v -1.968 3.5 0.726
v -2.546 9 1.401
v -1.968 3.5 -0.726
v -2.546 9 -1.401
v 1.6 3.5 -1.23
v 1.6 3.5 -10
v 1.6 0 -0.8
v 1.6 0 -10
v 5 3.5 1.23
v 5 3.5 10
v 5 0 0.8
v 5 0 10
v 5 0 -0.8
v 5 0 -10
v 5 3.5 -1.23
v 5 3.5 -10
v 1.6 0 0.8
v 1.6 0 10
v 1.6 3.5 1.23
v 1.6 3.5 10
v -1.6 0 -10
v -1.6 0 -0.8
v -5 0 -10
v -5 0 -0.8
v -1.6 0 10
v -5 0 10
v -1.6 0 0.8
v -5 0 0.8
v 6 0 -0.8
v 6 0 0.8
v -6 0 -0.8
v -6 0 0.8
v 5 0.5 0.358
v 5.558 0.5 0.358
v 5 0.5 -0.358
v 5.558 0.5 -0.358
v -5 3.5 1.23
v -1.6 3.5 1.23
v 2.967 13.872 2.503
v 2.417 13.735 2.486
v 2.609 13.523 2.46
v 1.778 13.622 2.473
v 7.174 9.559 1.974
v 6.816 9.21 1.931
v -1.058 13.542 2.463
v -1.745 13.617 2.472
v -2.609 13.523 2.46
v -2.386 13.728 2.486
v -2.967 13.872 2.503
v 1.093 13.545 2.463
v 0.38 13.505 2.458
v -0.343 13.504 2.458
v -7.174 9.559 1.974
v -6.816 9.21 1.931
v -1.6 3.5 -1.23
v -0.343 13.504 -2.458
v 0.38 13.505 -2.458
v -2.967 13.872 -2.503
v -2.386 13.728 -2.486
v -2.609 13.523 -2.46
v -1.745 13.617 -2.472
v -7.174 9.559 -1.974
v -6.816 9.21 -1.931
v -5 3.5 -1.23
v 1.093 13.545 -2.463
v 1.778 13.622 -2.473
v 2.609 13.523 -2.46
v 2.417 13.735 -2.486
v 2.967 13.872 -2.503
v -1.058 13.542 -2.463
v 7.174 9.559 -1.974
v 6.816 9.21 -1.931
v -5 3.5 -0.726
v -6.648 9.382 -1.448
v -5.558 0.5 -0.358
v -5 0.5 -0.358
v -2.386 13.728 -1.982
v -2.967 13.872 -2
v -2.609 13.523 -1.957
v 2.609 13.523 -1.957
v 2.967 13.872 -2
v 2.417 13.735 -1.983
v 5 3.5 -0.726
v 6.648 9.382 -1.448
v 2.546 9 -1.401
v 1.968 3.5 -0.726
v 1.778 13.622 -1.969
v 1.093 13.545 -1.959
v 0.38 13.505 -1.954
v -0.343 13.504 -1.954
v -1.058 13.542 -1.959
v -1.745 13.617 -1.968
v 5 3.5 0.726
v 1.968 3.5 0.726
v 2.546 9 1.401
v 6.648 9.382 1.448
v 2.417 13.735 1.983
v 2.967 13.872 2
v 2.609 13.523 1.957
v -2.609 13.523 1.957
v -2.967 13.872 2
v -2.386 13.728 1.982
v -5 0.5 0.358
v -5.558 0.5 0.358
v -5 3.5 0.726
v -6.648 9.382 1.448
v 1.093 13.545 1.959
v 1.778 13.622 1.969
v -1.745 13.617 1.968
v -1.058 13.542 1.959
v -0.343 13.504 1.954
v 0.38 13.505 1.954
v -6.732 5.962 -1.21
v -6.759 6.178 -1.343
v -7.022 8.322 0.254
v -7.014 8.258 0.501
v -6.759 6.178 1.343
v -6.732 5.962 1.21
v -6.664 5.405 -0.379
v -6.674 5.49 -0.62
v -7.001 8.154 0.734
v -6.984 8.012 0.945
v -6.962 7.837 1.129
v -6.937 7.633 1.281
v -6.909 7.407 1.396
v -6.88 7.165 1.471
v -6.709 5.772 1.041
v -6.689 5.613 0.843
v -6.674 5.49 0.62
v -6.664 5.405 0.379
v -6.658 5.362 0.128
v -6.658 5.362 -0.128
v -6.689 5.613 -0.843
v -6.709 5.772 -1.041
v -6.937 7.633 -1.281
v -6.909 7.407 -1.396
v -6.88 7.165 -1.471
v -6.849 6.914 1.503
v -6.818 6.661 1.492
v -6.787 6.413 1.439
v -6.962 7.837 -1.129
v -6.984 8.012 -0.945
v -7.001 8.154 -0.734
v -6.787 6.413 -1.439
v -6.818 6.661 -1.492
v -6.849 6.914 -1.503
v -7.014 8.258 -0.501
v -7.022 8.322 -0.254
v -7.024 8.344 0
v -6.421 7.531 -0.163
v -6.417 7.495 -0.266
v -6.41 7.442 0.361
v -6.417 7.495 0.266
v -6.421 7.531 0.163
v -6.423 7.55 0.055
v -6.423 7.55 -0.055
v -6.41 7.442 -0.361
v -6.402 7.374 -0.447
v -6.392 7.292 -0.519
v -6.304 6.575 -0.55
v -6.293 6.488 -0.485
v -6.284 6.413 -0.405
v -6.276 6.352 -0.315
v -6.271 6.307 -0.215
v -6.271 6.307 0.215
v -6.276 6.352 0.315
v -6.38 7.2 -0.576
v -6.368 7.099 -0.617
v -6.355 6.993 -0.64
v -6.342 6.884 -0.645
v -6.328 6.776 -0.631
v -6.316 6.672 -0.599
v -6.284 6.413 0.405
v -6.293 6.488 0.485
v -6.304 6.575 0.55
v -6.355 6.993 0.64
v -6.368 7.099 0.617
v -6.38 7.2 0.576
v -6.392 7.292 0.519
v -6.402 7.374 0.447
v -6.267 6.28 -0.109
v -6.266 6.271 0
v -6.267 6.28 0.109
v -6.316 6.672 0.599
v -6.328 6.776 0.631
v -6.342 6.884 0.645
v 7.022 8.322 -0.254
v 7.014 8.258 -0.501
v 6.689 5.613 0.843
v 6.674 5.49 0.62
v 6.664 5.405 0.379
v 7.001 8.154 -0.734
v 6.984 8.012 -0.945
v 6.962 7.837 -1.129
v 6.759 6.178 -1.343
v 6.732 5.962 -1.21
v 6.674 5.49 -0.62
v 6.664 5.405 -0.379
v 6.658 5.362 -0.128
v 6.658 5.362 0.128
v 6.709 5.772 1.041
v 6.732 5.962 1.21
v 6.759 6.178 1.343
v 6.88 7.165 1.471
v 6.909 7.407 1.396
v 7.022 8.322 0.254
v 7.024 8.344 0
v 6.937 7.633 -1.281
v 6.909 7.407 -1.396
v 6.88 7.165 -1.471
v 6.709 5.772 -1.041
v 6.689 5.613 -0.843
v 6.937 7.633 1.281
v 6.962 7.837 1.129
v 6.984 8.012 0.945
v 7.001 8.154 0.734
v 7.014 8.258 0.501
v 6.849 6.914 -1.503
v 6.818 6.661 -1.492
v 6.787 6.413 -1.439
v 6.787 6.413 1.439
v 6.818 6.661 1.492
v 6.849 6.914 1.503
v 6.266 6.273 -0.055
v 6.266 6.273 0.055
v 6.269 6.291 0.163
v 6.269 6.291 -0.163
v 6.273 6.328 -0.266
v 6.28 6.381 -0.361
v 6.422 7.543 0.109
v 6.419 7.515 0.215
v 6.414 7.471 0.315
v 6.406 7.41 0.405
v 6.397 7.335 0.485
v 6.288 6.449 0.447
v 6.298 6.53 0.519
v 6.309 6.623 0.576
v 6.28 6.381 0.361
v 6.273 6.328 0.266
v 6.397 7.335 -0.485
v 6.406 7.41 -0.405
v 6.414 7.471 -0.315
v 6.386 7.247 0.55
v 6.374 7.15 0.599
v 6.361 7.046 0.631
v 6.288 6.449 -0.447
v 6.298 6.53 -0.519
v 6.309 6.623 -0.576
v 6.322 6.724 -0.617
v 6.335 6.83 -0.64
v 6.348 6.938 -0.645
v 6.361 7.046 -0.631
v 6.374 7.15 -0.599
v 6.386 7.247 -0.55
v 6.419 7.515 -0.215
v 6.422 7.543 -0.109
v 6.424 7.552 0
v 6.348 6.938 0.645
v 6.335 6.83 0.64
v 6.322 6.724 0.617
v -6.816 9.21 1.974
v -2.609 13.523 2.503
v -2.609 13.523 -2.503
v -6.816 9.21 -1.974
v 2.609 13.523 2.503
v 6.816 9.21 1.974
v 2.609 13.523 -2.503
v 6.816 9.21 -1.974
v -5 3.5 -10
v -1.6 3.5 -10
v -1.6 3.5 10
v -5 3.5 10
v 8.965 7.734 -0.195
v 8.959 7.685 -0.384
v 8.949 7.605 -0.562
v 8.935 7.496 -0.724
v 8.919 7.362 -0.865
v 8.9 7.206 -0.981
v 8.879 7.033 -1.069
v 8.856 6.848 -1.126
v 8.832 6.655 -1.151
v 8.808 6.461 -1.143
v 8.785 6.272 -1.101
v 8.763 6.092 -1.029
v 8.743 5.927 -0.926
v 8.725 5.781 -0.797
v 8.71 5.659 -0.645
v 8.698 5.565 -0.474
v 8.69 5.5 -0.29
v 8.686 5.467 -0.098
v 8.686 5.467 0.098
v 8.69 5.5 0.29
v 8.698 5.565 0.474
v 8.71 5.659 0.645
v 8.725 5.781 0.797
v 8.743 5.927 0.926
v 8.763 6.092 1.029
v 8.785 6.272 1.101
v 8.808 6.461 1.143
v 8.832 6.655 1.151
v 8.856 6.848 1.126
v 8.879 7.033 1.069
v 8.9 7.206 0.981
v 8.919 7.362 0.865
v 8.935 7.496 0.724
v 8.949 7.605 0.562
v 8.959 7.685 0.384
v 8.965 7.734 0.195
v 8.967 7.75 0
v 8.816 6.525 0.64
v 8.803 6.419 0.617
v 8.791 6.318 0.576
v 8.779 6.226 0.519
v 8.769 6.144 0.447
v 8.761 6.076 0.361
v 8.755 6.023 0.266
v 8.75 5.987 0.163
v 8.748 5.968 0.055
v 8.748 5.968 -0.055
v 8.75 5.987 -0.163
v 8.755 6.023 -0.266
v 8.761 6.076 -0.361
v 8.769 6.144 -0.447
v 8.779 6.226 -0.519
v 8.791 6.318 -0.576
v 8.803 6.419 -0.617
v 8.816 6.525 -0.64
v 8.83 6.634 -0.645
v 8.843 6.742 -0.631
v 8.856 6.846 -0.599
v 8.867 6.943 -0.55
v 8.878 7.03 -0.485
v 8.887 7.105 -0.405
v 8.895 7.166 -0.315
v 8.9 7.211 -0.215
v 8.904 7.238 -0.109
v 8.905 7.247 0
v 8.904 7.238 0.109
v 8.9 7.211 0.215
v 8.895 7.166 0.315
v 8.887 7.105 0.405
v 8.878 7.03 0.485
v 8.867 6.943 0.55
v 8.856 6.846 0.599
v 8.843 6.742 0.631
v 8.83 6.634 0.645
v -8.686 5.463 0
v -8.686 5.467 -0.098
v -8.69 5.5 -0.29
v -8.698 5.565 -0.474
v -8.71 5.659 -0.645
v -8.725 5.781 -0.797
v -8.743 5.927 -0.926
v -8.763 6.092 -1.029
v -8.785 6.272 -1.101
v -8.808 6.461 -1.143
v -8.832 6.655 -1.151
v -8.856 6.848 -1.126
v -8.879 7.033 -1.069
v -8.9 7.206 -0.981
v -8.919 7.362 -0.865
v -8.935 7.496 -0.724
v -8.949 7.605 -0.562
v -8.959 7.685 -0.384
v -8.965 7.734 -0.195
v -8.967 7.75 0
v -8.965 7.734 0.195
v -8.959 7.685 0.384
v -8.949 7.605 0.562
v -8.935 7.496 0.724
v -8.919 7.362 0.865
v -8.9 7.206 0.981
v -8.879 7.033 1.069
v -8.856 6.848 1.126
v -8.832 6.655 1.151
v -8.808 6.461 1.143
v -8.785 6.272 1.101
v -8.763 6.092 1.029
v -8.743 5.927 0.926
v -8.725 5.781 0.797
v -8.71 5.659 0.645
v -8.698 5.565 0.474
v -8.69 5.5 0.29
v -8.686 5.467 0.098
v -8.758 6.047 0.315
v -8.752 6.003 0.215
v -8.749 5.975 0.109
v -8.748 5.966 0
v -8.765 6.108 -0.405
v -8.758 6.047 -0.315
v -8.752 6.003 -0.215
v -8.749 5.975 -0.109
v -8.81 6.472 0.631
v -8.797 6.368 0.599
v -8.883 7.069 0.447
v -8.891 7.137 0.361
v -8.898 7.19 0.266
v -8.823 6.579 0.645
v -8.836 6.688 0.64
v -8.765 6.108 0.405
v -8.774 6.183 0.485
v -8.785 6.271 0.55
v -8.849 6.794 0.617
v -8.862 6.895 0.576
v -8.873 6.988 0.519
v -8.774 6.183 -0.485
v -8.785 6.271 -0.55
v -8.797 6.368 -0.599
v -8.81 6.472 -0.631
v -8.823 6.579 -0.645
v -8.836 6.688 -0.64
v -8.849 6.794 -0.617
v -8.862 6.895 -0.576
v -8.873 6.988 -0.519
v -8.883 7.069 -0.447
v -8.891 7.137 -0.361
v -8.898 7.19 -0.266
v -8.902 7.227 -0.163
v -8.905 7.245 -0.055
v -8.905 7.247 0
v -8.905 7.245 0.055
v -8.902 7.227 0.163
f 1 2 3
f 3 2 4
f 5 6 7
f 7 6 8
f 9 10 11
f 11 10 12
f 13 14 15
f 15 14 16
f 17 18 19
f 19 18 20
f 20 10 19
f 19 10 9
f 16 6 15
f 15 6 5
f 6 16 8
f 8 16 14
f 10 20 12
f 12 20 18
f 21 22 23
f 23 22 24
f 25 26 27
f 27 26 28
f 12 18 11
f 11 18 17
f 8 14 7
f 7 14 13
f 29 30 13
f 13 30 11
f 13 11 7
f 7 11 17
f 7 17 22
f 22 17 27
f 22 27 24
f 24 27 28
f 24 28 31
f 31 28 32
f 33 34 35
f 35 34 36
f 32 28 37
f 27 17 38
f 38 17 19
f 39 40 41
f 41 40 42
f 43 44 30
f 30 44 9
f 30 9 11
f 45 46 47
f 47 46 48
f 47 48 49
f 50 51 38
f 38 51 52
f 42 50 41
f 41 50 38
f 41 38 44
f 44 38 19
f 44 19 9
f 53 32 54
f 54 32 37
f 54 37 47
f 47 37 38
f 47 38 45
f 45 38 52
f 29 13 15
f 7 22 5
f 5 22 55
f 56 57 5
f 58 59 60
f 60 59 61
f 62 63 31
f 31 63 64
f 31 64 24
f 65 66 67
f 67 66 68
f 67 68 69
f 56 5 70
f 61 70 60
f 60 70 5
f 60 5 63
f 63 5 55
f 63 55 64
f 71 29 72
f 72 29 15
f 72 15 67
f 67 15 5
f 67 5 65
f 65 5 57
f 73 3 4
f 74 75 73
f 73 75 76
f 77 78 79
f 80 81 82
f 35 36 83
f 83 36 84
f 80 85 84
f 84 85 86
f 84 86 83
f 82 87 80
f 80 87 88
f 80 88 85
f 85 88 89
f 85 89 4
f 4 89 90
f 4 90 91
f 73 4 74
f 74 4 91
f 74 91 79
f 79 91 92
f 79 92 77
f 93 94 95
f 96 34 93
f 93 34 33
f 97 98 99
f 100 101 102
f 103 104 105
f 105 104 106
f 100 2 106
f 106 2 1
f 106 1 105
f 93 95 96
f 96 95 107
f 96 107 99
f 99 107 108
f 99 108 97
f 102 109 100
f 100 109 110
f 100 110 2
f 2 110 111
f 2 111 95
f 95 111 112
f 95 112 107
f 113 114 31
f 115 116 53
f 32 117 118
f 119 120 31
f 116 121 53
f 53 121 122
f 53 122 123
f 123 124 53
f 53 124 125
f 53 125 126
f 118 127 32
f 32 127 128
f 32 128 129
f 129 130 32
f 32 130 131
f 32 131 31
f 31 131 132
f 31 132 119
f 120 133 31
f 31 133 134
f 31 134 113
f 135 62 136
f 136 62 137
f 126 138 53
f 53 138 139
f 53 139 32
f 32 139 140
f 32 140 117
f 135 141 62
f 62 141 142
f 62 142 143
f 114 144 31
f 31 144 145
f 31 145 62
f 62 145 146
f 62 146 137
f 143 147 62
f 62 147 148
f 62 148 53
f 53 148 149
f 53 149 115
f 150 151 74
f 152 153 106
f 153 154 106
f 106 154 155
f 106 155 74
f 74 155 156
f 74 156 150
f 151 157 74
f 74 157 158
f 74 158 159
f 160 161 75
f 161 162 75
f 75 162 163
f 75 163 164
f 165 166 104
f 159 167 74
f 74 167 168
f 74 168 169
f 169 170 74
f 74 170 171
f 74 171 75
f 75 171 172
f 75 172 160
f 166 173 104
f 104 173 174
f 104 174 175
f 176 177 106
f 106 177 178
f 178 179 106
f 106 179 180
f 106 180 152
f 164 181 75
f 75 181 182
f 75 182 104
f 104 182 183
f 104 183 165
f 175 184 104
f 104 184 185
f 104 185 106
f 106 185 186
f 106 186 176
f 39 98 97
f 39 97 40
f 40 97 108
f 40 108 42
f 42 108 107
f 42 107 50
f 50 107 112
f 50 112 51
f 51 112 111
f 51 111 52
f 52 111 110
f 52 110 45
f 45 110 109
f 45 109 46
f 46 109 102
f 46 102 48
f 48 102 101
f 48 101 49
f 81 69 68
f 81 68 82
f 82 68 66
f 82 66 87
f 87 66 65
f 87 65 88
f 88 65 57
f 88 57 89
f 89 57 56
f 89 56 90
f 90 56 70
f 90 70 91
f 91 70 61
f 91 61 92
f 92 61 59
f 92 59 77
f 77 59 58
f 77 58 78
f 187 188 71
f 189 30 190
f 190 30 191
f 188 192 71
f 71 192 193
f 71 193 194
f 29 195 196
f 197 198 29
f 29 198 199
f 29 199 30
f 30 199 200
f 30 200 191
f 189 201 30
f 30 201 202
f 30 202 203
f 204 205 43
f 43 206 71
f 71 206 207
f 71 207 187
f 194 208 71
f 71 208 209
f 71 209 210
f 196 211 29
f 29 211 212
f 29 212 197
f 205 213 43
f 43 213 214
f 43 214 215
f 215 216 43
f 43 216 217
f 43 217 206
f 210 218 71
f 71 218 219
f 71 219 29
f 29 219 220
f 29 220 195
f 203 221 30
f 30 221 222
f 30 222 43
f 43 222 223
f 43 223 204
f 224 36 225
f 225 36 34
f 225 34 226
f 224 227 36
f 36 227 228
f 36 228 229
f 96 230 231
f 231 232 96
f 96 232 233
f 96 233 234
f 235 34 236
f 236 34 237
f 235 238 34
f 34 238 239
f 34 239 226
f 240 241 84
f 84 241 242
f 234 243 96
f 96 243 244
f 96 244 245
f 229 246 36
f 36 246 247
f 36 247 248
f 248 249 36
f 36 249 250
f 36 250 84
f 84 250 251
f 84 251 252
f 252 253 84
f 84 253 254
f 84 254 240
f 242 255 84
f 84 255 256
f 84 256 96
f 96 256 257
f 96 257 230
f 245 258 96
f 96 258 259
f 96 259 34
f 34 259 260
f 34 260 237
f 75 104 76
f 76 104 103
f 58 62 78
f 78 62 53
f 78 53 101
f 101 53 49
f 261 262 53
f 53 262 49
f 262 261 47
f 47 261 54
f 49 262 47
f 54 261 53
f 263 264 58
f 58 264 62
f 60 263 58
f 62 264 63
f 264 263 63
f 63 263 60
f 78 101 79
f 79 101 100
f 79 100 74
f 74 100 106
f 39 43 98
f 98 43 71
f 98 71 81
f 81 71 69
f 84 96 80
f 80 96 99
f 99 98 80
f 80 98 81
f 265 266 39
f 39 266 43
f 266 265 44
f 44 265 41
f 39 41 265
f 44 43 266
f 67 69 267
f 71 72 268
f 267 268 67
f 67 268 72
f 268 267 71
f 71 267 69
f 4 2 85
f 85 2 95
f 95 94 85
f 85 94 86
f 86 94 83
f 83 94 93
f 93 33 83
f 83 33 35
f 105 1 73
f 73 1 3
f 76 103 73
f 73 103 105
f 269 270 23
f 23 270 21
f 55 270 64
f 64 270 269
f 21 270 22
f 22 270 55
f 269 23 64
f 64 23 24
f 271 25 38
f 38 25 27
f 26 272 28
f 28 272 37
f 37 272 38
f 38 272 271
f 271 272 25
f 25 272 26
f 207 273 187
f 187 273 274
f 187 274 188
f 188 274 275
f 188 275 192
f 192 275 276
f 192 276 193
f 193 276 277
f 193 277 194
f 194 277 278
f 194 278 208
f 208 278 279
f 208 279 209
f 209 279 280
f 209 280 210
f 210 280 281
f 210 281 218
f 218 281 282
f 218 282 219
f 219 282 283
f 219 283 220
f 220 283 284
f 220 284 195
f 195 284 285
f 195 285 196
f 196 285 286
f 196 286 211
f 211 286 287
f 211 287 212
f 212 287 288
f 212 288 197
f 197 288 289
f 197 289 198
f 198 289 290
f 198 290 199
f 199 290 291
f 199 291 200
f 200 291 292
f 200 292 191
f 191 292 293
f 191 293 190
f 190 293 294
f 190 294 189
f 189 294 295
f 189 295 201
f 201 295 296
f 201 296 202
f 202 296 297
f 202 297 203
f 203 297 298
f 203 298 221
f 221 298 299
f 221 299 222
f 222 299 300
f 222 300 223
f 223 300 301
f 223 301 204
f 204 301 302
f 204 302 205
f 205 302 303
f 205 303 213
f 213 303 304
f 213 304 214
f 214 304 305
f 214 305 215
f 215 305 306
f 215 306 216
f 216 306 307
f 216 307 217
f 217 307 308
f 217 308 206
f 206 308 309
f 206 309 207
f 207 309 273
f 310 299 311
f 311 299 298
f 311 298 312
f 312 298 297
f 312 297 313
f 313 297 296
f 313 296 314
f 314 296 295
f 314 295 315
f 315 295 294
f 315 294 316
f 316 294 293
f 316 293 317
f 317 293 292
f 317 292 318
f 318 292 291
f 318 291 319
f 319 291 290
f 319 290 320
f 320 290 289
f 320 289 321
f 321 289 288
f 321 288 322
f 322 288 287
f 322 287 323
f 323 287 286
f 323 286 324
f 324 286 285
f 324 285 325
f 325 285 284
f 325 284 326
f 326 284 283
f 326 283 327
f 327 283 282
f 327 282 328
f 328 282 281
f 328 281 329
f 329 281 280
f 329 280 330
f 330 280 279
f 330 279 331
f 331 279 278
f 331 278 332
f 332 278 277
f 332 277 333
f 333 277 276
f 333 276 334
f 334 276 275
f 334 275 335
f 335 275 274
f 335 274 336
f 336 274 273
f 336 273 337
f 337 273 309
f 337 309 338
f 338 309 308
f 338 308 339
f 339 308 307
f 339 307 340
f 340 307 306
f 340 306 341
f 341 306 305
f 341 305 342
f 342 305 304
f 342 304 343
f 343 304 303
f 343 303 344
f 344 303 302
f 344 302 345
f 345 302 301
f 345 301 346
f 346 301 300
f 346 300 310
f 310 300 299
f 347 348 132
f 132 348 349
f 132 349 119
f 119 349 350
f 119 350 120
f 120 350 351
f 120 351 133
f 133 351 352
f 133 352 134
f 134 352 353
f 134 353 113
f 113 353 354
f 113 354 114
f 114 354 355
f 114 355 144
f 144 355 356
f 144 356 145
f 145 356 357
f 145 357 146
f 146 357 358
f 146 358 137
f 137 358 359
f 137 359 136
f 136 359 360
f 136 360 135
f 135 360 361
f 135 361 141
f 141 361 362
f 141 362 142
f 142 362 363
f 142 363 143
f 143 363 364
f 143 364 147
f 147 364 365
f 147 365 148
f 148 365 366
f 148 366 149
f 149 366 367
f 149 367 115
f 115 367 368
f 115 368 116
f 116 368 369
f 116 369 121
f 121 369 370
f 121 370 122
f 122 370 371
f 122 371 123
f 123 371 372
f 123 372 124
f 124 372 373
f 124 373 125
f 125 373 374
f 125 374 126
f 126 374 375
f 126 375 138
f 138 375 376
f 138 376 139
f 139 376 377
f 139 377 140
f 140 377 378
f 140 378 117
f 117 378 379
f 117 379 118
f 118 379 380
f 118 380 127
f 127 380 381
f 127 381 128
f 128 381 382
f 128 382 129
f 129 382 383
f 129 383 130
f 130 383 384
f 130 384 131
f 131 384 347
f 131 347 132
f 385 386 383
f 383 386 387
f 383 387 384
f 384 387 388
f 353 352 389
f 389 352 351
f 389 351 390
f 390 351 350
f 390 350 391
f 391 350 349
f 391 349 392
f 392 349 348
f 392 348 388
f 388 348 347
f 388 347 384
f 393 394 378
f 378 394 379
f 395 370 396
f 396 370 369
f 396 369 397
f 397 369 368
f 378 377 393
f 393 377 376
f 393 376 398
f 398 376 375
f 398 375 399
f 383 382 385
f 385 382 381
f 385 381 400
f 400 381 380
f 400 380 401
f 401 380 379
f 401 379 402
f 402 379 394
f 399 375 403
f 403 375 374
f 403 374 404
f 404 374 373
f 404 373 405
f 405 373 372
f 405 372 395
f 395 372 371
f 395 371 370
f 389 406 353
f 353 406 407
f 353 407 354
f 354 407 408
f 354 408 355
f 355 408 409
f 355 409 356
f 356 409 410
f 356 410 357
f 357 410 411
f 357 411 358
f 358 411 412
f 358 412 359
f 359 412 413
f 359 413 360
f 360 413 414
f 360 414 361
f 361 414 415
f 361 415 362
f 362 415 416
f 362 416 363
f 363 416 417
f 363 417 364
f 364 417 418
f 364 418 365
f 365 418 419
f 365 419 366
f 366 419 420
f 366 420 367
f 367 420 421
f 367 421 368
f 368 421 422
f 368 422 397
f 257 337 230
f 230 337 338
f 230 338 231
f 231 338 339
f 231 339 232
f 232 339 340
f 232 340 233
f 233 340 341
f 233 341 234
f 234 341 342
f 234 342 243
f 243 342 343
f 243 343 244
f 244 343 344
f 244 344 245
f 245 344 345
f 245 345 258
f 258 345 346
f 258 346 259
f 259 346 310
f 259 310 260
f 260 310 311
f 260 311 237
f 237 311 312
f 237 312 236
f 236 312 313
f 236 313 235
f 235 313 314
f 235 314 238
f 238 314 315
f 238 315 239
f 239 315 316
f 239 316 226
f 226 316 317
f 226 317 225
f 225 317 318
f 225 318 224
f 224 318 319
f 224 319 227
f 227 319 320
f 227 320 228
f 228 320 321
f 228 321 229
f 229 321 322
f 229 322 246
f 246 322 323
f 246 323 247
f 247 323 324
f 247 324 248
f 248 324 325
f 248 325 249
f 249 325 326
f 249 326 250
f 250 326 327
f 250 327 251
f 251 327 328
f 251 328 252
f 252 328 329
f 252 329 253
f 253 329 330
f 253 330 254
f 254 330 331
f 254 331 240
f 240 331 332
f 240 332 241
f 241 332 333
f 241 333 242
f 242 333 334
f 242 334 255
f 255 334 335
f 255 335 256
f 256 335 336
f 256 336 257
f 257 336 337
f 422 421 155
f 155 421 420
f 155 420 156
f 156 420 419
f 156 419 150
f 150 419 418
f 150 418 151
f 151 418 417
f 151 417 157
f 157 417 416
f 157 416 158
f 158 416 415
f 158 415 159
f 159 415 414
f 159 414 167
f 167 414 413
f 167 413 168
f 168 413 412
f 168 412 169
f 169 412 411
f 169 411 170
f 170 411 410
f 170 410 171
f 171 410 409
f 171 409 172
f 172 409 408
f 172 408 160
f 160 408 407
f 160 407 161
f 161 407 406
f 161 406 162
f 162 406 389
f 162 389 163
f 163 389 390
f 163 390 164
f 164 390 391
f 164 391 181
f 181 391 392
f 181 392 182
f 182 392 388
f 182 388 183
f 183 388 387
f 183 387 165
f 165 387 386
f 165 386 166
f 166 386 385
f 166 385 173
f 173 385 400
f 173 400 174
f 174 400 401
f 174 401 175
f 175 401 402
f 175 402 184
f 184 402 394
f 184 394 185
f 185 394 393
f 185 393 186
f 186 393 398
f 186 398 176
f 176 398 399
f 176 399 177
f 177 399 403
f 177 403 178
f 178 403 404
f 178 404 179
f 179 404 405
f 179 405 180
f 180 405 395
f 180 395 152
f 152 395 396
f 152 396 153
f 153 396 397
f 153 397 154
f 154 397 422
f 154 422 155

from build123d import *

# Parameters (mm, degrees)
SKETCH1_W                = 12
SKETCH1_H                = 1.6
BOSS_EXTRUDE1_DEPTH      = 15
BOSS_EXTRUDE1_TAPER      = -7
SHELL1_T                 = -0.5
SKETCH6_W                = 3.4
SKETCH6_H                = 20
BOSS_EXTRUDE2_DEPTH      = 3.5
BOSS_EXTRUDE2_2_DEPTH    = 3.5
CUT_EXTRUDE11_DEPTH      = 10
CUT_EXTRUDE11_DEPTH_BACK = 10
SKETCH11_RX              = 4.5
SKETCH11_RY              = 1.5
CUT_EXTRUDE12_DEPTH      = 10
BOSS_EXTRUDE3_DEPTH      = 0.5
SKETCH30_W               = 3.2
SKETCH30_H               = 1.6
BOSS_EXTRUDE6_DEPTH      = 9
BOSS_EXTRUDE6_TAPER      = -6
SKETCH31_R               = 1.504583892
BOSS_EXTRUDE7_DEPTH      = 2
BOSS_EXTRUDE7_TAPER      = 10
SKETCH32_R               = 0.64546473
CUT_EXTRUDE13_DEPTH      = 4


with BuildPart() as part:
    # Sketch1 → Boss-Extrude1 (new body)
    with BuildSketch(Plane(origin=(0, 0, 0), x_dir=(1, 0, 0), z_dir=(0, 1, 0))):
        Rectangle(SKETCH1_W, SKETCH1_H)
    extrude(amount=BOSS_EXTRUDE1_DEPTH, taper=BOSS_EXTRUDE1_TAPER)

    # Shell1
    shell1_openings = [part.faces().sort_by_distance(p)[0] for p in [
        (0, 15, 0),
    ]]
    offset(amount=SHELL1_T, openings=shell1_openings, kind=Kind.INTERSECTION)

    # Sketch11 → Cut-Extrude11 (cut, two sides: drawn at the far end of the back side and taken through both)
    with BuildSketch(Plane.XY.offset(-CUT_EXTRUDE11_DEPTH_BACK)):
        with Locations((0, 15)):
            Ellipse(SKETCH11_RX, SKETCH11_RY)
    extrude(amount=CUT_EXTRUDE11_DEPTH + CUT_EXTRUDE11_DEPTH_BACK, mode=Mode.SUBTRACT)

    # Sketch18 → Cut-Extrude12 (cut, symmetric)
    with BuildSketch(Plane.XY):
        Polygon((-2.966549011, 13.872092056), (-7.173702506, 9.559039808), (-8.984967274, 15.813419698), (-2.966549011, 15.813419698), align=None)
    cut_extrude12 = extrude(amount=CUT_EXTRUDE12_DEPTH, both=True, mode=Mode.SUBTRACT)

    # Sketch19 → Boss-Extrude3 (add)
    with BuildSketch(Plane(origin=(-8.45404379, 8.246470904, 0), x_dir=(0, 0, 1), z_dir=(-0.7158402135047951, 0.6982641253346826, 0))):
        Polygon((1.973702506, 1.833605992), (2.503278732, 7.858766589), (-2.503278732, 7.858766589), (-1.973702506, 1.833605992), align=None)
    boss_extrude3 = extrude(amount=-BOSS_EXTRUDE3_DEPTH)

    # Mirror3: Boss-Extrude3 across plane
    add(boss_extrude3.mirror(Plane(origin=(0, 0, 0), x_dir=(0, 0, 1), z_dir=(1, 0, 0))))



with BuildPart() as body_2:
    # Sketch6 → Boss-Extrude2 (new body)
    with BuildSketch(Plane.XZ):
        with Locations((-3.3, 0)):
            Rectangle(SKETCH6_W, SKETCH6_H)
    extrude(amount=-BOSS_EXTRUDE2_DEPTH)


with BuildPart() as body_3:
    # Sketch6 → Boss-Extrude2 2 (new body)
    with BuildSketch(Plane.XZ):
        with Locations((3.3, 0)):
            Rectangle(SKETCH6_W, SKETCH6_H)
    extrude(amount=-BOSS_EXTRUDE2_2_DEPTH)


with BuildPart() as part_1:
    add(part.part)

    add(body_2.part)  # Boss-Extrude6 merges body 2

    add(body_3.part)  # Boss-Extrude6 merges body 3
    # Sketch30 → Boss-Extrude6 (add)
    with BuildSketch(Plane.XZ):
        Rectangle(SKETCH30_W, SKETCH30_H)
    extrude(amount=-BOSS_EXTRUDE6_DEPTH, taper=BOSS_EXTRUDE6_TAPER)

    # Mirror7: Cut-Extrude12 across plane
    add(cut_extrude12.mirror(Plane(origin=(0, 0, 0), x_dir=(0, 0, 1), z_dir=(1, 0, 0))), mode=Mode.SUBTRACT)

    # Sketch31 → Boss-Extrude7 (add)
    with BuildSketch(Plane(origin=(5.910887179, -0.725765687, 0), x_dir=(0, 0, -1), z_dir=(0.992546151641322, -0.12186934340514774, 0))):
        with Locations((0, 7.63302961)):
            Circle(SKETCH31_R)
    boss_extrude7 = extrude(amount=BOSS_EXTRUDE7_DEPTH, taper=BOSS_EXTRUDE7_TAPER)

    # Mirror8: Boss-Extrude7 across plane
    add(boss_extrude7.mirror(Plane(origin=(0, 0, 0), x_dir=(0, 0, 1), z_dir=(1, 0, 0))))

    # Sketch32 → Cut-Extrude13 (cut)
    with BuildSketch(Plane(origin=(7.895979482, -0.969504374, 0), x_dir=(0, 0, -1), z_dir=(0.992546151641322, -0.12186934340514774, 0))):
        with Locations((0, 7.63302961)):
            Circle(SKETCH32_R)
    cut_extrude13 = extrude(amount=-CUT_EXTRUDE13_DEPTH, mode=Mode.SUBTRACT)

    # Mirror9: Cut-Extrude13 across plane
    add(cut_extrude13.mirror(Plane(origin=(0, 0, 0), x_dir=(0, 0, 1), z_dir=(1, 0, 0))), mode=Mode.SUBTRACT)


solid = part_1.part
